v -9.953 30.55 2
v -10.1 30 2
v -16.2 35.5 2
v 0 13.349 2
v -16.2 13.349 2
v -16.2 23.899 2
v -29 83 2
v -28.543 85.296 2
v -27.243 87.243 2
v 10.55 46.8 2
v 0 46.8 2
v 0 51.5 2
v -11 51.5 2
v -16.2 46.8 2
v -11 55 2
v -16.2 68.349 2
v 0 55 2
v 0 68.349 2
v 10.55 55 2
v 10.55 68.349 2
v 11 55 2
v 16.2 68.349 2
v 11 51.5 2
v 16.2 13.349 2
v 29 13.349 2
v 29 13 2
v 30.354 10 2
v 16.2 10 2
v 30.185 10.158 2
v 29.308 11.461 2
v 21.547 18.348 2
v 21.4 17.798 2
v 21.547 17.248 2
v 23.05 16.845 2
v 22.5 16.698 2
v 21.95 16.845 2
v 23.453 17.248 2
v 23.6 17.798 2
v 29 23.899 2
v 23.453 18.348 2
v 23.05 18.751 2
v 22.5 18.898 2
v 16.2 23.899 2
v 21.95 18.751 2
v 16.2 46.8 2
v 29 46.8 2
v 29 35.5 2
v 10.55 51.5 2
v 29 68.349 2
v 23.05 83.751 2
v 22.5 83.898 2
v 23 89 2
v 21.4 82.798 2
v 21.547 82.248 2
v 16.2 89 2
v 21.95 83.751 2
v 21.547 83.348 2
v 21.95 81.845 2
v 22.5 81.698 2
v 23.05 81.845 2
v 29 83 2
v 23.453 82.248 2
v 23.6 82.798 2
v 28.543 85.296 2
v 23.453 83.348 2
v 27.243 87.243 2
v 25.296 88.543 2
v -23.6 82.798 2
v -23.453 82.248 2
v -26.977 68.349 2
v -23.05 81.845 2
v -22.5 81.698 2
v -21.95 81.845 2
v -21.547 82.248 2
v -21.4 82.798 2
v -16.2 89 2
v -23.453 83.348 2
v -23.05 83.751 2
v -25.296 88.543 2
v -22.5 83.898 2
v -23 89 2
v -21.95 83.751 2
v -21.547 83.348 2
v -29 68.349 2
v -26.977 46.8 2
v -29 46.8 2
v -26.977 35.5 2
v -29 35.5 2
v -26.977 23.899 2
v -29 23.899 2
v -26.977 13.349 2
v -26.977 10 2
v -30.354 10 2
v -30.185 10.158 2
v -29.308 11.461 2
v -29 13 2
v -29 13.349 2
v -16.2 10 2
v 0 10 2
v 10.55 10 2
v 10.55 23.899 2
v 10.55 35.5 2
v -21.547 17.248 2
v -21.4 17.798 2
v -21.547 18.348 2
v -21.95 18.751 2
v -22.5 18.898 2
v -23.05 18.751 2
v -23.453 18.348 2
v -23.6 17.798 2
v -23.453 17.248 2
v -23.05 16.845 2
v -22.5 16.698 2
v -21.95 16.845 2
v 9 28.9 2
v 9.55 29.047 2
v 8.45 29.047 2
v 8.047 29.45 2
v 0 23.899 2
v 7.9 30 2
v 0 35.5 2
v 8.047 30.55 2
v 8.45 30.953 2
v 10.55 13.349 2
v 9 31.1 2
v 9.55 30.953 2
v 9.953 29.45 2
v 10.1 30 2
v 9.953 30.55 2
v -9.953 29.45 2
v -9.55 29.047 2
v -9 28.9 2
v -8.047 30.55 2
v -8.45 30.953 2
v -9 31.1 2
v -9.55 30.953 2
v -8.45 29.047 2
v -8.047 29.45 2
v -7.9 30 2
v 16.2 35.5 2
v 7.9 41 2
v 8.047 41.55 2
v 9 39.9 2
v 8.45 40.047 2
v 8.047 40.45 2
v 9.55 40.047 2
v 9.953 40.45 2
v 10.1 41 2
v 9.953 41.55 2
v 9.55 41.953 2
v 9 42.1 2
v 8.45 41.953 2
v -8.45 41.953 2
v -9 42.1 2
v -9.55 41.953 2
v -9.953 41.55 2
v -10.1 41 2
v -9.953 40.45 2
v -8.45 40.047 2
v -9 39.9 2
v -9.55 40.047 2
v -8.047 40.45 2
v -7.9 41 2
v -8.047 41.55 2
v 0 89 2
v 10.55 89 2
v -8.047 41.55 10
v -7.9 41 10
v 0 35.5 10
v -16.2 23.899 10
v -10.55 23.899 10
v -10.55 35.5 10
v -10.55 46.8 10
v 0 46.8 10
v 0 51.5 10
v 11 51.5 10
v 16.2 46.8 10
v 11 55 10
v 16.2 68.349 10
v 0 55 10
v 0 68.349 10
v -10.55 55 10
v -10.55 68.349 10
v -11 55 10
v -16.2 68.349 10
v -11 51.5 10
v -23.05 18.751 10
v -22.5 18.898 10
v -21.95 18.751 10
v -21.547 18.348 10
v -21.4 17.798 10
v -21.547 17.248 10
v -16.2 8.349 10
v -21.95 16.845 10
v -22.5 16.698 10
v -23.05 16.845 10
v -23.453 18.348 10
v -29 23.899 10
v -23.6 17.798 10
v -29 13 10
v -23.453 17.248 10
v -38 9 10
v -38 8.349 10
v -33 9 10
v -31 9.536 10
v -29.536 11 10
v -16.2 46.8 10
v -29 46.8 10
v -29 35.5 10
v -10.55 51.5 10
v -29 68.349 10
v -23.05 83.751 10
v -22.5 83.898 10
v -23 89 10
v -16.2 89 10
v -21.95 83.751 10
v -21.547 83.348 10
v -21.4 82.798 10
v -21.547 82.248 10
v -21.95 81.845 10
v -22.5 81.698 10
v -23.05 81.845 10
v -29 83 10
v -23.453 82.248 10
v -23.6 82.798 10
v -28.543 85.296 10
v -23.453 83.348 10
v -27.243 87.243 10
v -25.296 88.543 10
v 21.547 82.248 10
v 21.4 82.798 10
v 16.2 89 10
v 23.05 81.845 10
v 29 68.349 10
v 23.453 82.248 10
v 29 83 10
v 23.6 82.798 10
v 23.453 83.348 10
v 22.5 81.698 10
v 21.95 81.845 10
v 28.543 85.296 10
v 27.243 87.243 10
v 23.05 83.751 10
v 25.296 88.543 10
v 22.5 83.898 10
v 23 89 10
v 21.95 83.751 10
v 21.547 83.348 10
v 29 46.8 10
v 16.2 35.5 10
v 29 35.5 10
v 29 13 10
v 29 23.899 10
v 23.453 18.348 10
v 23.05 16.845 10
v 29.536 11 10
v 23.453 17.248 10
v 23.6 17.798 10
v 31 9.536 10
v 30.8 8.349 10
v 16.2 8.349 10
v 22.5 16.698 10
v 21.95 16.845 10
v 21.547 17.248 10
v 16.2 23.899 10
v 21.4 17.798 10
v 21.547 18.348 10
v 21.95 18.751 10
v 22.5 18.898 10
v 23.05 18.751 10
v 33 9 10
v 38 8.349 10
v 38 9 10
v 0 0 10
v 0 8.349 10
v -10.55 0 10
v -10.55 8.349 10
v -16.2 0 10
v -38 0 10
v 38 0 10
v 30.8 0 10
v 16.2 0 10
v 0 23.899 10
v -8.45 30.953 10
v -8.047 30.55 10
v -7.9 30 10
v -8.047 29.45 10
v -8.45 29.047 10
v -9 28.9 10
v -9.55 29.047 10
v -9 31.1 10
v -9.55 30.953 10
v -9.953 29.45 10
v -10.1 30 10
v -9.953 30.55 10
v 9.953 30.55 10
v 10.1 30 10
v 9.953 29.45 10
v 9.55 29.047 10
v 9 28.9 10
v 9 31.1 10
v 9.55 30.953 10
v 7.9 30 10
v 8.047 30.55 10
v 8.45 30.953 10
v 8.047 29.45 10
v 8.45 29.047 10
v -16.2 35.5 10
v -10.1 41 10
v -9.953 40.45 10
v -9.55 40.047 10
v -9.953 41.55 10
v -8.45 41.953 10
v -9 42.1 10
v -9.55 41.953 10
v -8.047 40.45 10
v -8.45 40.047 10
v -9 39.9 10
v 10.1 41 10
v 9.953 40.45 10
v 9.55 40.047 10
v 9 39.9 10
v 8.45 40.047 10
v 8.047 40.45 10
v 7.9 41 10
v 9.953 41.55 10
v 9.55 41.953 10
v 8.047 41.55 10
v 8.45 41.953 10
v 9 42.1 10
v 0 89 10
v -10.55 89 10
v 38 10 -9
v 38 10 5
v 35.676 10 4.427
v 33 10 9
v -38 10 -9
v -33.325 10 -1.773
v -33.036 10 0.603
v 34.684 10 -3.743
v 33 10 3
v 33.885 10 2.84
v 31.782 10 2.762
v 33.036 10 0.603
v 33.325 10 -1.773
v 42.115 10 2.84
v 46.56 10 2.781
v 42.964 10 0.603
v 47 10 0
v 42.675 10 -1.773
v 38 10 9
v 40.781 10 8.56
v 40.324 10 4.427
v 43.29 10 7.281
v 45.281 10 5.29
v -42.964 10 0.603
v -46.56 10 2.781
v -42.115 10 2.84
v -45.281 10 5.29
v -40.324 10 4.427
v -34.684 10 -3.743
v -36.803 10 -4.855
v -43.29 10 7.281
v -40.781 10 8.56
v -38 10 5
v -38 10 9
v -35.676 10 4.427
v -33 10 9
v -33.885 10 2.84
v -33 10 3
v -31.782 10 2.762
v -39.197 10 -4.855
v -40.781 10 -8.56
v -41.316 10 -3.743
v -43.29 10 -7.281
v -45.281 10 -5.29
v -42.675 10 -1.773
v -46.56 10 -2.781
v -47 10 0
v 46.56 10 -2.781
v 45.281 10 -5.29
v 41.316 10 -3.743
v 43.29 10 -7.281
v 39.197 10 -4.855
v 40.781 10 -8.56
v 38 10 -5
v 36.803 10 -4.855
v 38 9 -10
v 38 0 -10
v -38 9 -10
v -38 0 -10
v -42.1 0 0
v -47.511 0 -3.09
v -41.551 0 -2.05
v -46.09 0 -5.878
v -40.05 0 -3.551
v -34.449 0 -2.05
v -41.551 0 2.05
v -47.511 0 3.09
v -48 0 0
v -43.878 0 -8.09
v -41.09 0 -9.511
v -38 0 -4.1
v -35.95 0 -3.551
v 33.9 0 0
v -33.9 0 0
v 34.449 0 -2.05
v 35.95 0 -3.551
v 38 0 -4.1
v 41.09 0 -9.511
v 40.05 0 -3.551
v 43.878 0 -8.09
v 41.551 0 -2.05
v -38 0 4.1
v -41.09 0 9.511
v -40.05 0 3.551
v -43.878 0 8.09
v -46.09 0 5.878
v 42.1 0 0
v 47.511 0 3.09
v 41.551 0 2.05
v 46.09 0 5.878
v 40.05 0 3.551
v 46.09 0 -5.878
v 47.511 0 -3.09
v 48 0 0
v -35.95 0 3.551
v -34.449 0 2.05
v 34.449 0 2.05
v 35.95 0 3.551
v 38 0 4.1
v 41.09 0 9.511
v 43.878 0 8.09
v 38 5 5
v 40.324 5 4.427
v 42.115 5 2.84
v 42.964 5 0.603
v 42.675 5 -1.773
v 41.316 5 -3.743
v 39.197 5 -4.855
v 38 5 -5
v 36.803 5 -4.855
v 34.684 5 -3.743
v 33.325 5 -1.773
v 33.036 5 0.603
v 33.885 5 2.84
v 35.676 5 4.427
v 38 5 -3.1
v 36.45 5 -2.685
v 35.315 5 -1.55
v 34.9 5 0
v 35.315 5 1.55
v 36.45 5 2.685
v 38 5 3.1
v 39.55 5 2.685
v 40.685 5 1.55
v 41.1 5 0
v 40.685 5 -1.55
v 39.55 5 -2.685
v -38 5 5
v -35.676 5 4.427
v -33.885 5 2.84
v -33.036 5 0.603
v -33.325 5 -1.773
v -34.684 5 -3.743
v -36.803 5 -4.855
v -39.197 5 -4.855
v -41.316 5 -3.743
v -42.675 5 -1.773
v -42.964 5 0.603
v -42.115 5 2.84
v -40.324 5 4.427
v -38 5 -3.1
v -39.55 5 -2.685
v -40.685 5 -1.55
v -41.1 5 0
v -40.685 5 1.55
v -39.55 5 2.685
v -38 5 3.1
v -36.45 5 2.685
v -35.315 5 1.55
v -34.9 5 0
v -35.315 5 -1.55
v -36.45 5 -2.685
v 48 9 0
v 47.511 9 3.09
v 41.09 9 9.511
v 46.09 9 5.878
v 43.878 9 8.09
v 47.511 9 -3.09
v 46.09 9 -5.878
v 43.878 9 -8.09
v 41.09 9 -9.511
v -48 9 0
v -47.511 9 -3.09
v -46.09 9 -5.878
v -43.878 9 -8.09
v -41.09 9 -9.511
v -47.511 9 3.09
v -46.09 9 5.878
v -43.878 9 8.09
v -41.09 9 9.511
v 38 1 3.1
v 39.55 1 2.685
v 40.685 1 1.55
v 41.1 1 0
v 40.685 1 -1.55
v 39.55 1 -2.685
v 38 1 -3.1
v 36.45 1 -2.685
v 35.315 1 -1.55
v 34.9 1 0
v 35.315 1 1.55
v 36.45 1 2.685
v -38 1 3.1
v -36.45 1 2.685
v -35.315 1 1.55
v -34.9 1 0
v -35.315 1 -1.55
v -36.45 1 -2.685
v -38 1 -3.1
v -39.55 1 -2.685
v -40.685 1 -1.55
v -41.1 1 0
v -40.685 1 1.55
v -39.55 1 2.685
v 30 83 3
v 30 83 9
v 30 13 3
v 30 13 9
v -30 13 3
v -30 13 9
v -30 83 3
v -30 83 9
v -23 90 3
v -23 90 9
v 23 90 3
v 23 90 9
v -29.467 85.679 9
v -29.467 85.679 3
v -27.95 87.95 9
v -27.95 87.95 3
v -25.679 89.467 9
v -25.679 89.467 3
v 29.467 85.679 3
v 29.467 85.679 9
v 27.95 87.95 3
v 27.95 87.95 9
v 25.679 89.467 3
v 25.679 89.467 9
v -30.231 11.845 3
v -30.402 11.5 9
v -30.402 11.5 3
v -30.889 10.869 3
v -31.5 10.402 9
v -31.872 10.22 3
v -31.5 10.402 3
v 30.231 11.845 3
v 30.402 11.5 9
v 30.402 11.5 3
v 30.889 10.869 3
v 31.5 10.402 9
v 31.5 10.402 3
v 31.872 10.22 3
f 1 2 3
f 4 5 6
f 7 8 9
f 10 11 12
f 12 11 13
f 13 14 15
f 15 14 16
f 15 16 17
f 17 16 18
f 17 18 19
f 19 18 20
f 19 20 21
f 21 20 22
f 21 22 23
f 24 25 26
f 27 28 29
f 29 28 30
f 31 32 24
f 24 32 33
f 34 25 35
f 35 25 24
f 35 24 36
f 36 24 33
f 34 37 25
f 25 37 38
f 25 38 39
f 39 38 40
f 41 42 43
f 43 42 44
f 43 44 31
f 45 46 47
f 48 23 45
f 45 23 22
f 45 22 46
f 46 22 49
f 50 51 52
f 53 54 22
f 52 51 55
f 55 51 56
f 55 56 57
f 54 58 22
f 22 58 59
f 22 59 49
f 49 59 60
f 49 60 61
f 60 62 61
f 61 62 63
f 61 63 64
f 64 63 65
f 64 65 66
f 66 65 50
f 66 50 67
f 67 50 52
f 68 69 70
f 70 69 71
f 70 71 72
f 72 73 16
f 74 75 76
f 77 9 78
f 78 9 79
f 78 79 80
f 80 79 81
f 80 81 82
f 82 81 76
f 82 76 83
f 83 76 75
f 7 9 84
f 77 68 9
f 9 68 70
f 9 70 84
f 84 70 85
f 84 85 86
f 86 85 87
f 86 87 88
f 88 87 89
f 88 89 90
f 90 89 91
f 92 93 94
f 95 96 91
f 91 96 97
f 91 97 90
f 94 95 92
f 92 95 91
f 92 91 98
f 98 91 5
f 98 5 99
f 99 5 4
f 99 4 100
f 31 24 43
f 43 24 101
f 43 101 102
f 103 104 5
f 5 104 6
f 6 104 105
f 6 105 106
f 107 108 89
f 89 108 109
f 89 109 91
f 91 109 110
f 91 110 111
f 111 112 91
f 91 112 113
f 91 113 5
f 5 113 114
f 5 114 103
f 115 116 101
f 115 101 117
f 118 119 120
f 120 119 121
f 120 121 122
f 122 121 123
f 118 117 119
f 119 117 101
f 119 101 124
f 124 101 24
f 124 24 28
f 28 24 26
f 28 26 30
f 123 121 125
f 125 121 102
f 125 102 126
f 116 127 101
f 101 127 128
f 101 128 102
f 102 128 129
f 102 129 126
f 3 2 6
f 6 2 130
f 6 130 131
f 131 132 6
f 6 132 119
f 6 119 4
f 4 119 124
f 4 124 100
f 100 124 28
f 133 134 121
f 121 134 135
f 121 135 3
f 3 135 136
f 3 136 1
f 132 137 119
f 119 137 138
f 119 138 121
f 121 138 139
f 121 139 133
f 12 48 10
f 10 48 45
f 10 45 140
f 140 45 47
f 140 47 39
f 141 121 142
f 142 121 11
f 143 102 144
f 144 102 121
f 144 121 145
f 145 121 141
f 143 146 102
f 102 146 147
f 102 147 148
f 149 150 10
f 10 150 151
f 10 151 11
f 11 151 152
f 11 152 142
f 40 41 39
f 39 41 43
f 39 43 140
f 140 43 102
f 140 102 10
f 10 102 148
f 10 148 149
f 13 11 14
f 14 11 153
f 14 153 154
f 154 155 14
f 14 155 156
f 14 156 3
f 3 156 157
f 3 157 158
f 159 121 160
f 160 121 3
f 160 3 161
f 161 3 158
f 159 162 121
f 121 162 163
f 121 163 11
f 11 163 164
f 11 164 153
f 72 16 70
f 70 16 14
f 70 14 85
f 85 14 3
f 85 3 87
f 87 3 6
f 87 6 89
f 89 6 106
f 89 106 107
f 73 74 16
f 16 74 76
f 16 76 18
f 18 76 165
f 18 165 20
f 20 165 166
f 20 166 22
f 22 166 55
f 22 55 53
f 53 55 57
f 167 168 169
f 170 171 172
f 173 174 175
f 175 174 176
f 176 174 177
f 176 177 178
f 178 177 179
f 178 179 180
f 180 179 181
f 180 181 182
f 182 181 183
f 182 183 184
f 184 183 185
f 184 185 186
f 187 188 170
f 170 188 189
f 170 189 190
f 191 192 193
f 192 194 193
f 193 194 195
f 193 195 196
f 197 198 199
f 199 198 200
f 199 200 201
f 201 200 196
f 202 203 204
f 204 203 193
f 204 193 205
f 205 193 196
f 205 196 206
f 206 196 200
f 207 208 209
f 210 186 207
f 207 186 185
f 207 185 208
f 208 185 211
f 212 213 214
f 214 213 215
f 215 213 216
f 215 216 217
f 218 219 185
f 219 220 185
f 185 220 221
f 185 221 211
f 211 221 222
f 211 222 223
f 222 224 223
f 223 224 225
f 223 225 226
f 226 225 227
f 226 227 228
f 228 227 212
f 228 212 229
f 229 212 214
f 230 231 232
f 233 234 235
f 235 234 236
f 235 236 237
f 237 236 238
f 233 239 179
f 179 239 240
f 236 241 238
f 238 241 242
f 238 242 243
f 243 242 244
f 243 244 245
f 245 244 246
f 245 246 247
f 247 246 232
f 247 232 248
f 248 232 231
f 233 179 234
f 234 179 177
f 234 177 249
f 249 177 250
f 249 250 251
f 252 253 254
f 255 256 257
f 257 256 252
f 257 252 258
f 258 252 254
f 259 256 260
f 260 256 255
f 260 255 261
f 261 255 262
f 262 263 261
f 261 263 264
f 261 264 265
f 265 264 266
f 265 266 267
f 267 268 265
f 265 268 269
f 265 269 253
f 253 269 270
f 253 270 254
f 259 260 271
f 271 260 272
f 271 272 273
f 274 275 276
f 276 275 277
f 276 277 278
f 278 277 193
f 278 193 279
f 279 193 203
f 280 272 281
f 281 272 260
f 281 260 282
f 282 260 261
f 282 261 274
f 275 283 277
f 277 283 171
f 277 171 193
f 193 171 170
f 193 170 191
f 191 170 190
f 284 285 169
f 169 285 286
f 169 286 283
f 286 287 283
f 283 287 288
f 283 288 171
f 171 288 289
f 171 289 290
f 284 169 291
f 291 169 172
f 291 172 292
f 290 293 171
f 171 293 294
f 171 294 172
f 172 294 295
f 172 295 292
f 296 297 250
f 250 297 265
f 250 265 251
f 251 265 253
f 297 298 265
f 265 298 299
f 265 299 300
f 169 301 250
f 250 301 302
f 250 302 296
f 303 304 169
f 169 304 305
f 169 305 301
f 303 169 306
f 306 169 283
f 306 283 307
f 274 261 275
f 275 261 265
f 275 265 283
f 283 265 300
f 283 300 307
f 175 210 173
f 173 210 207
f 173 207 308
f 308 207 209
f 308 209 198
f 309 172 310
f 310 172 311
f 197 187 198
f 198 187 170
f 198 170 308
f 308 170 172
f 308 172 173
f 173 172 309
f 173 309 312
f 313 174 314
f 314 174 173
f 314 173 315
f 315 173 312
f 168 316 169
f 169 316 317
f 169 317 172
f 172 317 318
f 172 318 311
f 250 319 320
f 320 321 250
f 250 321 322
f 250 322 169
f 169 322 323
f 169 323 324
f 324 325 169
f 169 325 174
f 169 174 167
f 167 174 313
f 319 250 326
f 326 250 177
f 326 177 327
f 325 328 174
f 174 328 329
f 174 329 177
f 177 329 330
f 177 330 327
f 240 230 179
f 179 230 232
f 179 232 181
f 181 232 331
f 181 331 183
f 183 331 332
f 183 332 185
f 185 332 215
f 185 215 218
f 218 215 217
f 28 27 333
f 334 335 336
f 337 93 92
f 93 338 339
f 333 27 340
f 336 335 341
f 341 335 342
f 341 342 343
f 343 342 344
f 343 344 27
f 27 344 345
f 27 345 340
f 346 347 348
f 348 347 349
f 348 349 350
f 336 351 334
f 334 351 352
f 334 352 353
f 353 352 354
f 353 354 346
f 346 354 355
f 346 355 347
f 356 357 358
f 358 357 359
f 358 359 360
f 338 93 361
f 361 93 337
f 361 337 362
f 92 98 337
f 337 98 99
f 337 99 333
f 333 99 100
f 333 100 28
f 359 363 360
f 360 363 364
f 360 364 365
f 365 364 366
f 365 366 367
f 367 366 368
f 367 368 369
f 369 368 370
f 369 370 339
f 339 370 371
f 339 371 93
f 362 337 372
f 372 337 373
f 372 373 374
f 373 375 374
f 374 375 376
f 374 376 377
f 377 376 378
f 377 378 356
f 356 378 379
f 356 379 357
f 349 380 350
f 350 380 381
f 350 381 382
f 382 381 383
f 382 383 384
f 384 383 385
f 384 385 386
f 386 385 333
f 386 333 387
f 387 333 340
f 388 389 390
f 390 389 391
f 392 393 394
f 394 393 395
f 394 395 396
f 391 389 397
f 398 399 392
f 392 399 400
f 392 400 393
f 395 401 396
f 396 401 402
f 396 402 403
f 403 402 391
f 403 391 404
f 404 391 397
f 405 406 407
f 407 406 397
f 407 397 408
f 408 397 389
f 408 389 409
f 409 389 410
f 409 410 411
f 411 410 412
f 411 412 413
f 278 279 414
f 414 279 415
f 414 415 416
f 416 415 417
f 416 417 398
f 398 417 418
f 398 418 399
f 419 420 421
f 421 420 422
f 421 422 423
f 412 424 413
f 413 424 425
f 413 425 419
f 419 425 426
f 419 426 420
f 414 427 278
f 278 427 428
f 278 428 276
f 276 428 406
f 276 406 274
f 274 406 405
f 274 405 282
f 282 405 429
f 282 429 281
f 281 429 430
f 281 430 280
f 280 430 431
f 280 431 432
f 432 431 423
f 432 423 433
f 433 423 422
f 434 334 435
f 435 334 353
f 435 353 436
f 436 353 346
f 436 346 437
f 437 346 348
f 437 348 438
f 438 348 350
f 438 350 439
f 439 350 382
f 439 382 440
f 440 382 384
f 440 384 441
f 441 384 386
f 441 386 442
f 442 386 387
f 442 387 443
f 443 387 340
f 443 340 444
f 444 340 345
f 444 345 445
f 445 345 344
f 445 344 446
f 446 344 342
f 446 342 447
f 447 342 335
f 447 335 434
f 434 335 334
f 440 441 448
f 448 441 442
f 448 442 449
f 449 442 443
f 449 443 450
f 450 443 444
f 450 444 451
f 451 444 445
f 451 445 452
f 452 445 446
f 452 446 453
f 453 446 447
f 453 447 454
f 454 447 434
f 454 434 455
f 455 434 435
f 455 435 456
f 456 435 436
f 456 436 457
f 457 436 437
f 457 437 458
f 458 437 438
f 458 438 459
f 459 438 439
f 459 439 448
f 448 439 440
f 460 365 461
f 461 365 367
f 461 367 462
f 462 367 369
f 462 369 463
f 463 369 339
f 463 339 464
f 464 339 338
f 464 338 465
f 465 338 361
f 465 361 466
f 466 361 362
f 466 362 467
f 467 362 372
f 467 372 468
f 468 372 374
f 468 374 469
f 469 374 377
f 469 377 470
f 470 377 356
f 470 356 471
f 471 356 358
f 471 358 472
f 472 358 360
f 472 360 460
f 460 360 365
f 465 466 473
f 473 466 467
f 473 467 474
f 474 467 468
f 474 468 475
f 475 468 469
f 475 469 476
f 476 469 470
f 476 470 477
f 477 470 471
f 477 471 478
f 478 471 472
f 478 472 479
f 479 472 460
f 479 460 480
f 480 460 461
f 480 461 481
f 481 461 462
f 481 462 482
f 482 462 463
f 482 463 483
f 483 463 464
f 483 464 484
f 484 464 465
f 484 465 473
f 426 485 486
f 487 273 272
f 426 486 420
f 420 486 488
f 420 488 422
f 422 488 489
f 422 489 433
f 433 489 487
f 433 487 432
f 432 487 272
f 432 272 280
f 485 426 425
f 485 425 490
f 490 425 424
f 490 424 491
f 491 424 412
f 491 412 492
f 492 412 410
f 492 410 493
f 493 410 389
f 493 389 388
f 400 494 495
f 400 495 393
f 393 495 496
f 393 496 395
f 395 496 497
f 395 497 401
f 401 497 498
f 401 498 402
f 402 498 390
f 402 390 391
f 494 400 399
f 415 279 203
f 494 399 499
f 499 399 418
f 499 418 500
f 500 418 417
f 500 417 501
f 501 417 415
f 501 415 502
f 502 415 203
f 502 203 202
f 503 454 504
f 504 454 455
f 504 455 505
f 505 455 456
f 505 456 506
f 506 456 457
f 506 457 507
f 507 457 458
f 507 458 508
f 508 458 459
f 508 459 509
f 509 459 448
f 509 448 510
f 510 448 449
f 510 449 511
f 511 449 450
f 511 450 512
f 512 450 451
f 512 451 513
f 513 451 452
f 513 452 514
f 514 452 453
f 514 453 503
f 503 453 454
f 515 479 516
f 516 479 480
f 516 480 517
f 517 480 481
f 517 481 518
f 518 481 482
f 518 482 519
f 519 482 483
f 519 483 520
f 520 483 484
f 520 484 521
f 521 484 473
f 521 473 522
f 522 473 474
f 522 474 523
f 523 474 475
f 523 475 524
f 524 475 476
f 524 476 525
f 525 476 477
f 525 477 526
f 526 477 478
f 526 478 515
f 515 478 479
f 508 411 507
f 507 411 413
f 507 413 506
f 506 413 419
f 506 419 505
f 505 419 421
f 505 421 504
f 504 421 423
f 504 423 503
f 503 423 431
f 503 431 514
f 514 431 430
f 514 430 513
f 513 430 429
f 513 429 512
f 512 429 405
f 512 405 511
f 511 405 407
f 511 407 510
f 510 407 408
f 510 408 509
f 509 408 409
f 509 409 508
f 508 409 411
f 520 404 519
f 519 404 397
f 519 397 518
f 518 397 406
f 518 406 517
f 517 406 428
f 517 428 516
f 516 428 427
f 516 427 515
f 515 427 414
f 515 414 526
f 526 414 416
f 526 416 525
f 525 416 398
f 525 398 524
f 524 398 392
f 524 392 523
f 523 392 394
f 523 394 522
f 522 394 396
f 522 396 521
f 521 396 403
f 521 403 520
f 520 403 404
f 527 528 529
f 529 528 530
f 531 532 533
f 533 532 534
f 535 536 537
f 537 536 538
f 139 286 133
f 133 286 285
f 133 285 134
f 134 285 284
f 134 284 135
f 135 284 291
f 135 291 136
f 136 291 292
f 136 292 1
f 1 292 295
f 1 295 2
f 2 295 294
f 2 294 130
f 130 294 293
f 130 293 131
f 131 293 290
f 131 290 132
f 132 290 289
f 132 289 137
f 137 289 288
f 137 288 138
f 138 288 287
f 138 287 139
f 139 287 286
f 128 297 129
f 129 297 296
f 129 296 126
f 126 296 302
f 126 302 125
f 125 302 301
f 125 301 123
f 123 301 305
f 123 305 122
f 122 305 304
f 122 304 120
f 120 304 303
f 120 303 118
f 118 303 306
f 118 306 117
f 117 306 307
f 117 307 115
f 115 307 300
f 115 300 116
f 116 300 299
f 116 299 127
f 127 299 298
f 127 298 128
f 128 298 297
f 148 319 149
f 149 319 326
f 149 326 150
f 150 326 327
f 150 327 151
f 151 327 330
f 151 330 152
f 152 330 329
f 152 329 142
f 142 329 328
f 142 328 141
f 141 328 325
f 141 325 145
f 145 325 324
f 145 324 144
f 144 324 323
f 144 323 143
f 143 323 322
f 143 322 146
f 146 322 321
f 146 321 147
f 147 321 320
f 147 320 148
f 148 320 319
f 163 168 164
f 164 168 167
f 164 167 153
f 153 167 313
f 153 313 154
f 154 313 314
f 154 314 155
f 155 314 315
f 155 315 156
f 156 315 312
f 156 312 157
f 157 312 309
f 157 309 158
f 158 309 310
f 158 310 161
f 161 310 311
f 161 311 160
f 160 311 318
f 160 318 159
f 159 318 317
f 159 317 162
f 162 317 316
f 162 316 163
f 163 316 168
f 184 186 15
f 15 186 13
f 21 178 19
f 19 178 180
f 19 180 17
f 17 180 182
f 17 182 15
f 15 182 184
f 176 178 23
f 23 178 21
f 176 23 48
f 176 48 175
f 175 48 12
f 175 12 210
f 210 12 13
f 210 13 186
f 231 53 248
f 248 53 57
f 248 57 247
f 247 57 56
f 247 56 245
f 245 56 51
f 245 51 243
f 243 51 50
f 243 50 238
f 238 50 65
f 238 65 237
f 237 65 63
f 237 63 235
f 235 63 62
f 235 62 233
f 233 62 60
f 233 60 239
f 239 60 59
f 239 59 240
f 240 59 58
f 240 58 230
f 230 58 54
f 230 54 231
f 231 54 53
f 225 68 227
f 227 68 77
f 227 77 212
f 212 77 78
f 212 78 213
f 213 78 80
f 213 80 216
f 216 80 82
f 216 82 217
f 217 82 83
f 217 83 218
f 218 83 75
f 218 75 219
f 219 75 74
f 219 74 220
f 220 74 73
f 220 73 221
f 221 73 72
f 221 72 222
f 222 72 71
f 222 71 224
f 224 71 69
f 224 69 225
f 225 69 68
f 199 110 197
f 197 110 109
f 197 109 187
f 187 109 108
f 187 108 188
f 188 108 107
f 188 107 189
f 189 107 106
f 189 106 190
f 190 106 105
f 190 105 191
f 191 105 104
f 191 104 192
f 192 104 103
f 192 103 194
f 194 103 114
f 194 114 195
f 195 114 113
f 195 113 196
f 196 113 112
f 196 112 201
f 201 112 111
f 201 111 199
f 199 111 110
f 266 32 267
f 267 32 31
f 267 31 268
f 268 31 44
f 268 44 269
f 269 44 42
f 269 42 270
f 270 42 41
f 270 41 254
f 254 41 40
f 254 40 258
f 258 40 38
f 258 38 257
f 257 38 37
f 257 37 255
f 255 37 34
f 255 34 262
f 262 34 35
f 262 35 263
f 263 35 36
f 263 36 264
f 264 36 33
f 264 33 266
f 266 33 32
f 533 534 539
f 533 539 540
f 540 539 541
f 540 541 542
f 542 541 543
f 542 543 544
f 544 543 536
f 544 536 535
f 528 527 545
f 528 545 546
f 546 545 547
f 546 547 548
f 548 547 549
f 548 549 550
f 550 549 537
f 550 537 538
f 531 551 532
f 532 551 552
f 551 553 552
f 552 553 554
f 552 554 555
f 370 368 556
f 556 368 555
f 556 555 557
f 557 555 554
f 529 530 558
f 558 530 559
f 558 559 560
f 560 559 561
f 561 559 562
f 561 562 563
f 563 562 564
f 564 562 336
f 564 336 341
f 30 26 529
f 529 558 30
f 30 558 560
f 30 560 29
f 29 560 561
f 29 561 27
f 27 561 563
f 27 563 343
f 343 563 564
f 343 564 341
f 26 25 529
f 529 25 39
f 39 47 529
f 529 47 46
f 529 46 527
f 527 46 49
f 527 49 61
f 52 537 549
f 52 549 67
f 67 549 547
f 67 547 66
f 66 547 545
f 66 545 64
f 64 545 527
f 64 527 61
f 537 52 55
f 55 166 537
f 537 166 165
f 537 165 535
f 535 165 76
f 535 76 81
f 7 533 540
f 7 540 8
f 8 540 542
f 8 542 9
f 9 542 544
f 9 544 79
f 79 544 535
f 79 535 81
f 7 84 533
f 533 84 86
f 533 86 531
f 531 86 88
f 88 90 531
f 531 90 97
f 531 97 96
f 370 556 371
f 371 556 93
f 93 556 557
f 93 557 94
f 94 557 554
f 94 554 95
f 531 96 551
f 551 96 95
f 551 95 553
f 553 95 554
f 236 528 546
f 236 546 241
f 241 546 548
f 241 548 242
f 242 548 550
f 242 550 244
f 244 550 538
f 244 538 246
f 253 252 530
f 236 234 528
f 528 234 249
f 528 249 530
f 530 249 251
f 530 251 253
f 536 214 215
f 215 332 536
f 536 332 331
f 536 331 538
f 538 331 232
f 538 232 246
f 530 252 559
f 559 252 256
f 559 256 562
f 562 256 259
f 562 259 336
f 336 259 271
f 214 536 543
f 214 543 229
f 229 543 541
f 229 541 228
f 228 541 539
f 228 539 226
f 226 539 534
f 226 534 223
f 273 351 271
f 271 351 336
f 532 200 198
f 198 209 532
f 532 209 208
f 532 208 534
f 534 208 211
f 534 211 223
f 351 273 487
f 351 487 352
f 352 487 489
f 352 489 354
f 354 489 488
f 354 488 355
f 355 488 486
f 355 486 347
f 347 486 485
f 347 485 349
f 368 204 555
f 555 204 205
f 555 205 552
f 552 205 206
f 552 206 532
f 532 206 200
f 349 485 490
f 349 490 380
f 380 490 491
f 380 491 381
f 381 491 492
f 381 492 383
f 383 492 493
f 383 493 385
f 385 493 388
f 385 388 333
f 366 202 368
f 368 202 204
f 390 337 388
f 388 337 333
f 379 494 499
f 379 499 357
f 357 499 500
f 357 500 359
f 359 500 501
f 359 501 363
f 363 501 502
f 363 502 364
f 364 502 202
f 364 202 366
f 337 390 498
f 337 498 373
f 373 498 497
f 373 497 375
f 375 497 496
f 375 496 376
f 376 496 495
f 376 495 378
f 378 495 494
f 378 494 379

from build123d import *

# Parameters (mm, degrees)
SKETCH_1_W          = 96
SKETCH_1_H          = 20
EXTRUDE_1_DEPTH     = 10
SKETCH_2_R          = 5
CUT_EXTRUDE_1_DEPTH = 5
FILLET_1_R          = 10
SKETCH_3_R          = 3.1
CUT_EXTRUDE_2_DEPTH = 5
CHAMFER_1_SIZE      = 1
SKETCH_4_W          = 60
SKETCH_4_H          = 20
EXTRUDE_2_DEPTH     = 80
CUT_EXTRUDE_4_REACH = 105.942
SKETCH_6_R          = 1.1
CUT_EXTRUDE_5_DEPTH = 11
SKETCH_8_W          = 60
SKETCH_8_H          = 102
CUT_EXTRUDE_6_DEPTH = 12
SKETCH_9_R          = 1.1
CUT_EXTRUDE_7_DEPTH = 10
FILLET_8_R          = 7
SKETCH_10_W         = 12
SKETCH_10_H         = 10
EXTRUDE_3_DEPTH     = 60
FILLET_11_R         = 3
CHAMFER_4_SIZE      = 1


with BuildPart() as part:
    # 草图1 → 凸台-拉伸1 (new body)
    with BuildSketch(Plane(origin=(0, 0, 0), x_dir=(1, 0, 0), z_dir=(0, 1, 0))):
        Rectangle(SKETCH_1_W, SKETCH_1_H)
    extrude(amount=EXTRUDE_1_DEPTH)

    # 草图2 → 切除-拉伸1 (cut)
    with BuildSketch(Plane(origin=(0, 10, 0), x_dir=(1, 0, 0), z_dir=(0, 1, 0))):
        with Locations(Location((-38, 0, 0), (0, 0, 270))):
            Circle(SKETCH_2_R)
        with Locations(Location((38, 0, 0), (0, 0, 90))):
            Circle(SKETCH_2_R)
    extrude(amount=-CUT_EXTRUDE_1_DEPTH, mode=Mode.SUBTRACT)

    # 圆角1
    fillet_1_edges = [part.edges().sort_by_distance(p)[0] for p in [
        (48, 5, -10),
        (48, 5, 10),
        (-48, 5, 10),
        (-48, 5, -10),
    ]]
    fillet(fillet_1_edges, radius=FILLET_1_R - 0.0001)  # a hair under: the kernel refuses the full size

    # 草图3 → 切除-拉伸2 (cut)
    with BuildSketch(Plane(origin=(0, 5, 0), x_dir=(1, 0, 0), z_dir=(0, 1, 0))):
        with Locations(Location((-38, 0, 0), (0, 0, 270))):
            Circle(SKETCH_3_R)
        with Locations(Location((38, 0, 0), (0, 0, 270))):
            Circle(SKETCH_3_R)
    extrude(amount=-CUT_EXTRUDE_2_DEPTH, mode=Mode.SUBTRACT)

    # 倒角1
    chamfer_1_edges = [part.edges().sort_by_distance(p)[0] for p in [
        (-38, 0, -3.1),
        (38, 0, -3.1),
    ]]
    chamfer(chamfer_1_edges, length=CHAMFER_1_SIZE)

    # 草图4 → 凸台-拉伸2 (add)
    with BuildSketch(Plane(origin=(0, 10, 0), x_dir=(1, 0, 0), z_dir=(0, 1, 0))):
        Rectangle(SKETCH_4_W, SKETCH_4_H)
    extrude(amount=EXTRUDE_2_DEPTH)

    # 草图6 → 切除-拉伸4 (cut, up to next)
    with BuildSketch(Plane.XY.offset(10), mode=Mode.PRIVATE) as cut_extrude_4_sk1:
        with Locations((-9, 41)):
            Circle(SKETCH_6_R)
    cut_extrude_4_tool1 = extrude(cut_extrude_4_sk1.sketch, amount=-CUT_EXTRUDE_4_REACH, mode=Mode.PRIVATE) & part.part
    # 草图6 → 切除-拉伸4 (cut, up to next)
    with BuildSketch(Plane.XY.offset(10), mode=Mode.PRIVATE) as cut_extrude_4_sk2:
        with Locations((9, 41)):
            Circle(SKETCH_6_R)
    cut_extrude_4_tool2 = extrude(cut_extrude_4_sk2.sketch, amount=-CUT_EXTRUDE_4_REACH, mode=Mode.PRIVATE) & part.part
    # 草图6 → 切除-拉伸4 (cut, up to next)
    with BuildSketch(Plane.XY.offset(10), mode=Mode.PRIVATE) as cut_extrude_4_sk3:
        with Locations((9, 30)):
            Circle(SKETCH_6_R)
    cut_extrude_4_tool3 = extrude(cut_extrude_4_sk3.sketch, amount=-CUT_EXTRUDE_4_REACH, mode=Mode.PRIVATE) & part.part
    # 草图6 → 切除-拉伸4 (cut, up to next)
    with BuildSketch(Plane.XY.offset(10), mode=Mode.PRIVATE) as cut_extrude_4_sk4:
        with Locations((-9, 30)):
            Circle(SKETCH_6_R)
    cut_extrude_4_tool4 = extrude(cut_extrude_4_sk4.sketch, amount=-CUT_EXTRUDE_4_REACH, mode=Mode.PRIVATE) & part.part
    add(cut_extrude_4_tool1.solids().sort_by_distance((-9, 41, 10))[0], mode=Mode.SUBTRACT)
    add(cut_extrude_4_tool2.solids().sort_by_distance((9, 41, 10))[0], mode=Mode.SUBTRACT)
    add(cut_extrude_4_tool3.solids().sort_by_distance((9, 30, 10))[0], mode=Mode.SUBTRACT)
    add(cut_extrude_4_tool4.solids().sort_by_distance((-9, 30, 10))[0], mode=Mode.SUBTRACT)

    # 草图6<8> → 切除-拉伸5 (cut)
    with BuildSketch(Plane.XY.offset(10)):
        Polygon((0, 55), (11, 55), (11, 51.5), (-11, 51.5), (-11, 55), align=None)
    extrude(amount=-CUT_EXTRUDE_5_DEPTH, mode=Mode.SUBTRACT)

    # 草图8 → 切除-拉伸6 (cut)
    with BuildSketch(Plane(origin=(0, 0, -10), x_dir=(-1, 0, 0), z_dir=(0, 0, -1))):
        with Locations((0, 39)):
            Rectangle(SKETCH_8_W, SKETCH_8_H)
    extrude(amount=-CUT_EXTRUDE_6_DEPTH, mode=Mode.SUBTRACT)

    # 草图9 → 切除-拉伸7 (cut)
    with BuildSketch(Plane(origin=(0, 0, 2), x_dir=(-1, 0, 0), z_dir=(0, 0, -1))):
        with Locations((-22.5, 82.797945994)):
            Circle(SKETCH_9_R)
        with Locations((22.5, 82.797945994)):
            Circle(SKETCH_9_R)
        with Locations((22.5, 17.797945994)):
            Circle(SKETCH_9_R)
        with Locations((-22.5, 17.797945994)):
            Circle(SKETCH_9_R)
    extrude(amount=-CUT_EXTRUDE_7_DEPTH, mode=Mode.SUBTRACT)

    # 圆角8
    fillet_8_edges = [part.edges().sort_by_distance(p)[0] for p in [
        (-30, 90, 6),
        (30, 90, 6),
    ]]
    fillet(fillet_8_edges, radius=FILLET_8_R)

    # 草图10 → 凸台-拉伸3 (add)
    with BuildSketch(Plane.ZY.offset(-30)):
        with Locations((-4, 5)):
            Rectangle(SKETCH_10_W, SKETCH_10_H)
    extrude(amount=EXTRUDE_3_DEPTH)

    # 圆角11
    fillet_11_edges = [part.edges().sort_by_distance(p)[0] for p in [
        (-30, 10, 6),
        (30, 10, 6),
    ]]
    fillet(fillet_11_edges, radius=FILLET_11_R)

    # 倒角4
    chamfer_4_edges = [part.edges().sort_by_distance(p)[0] for p in [
        (0, 90, 2),
        (0, 90, 10),
        (30, 48, 10),
        (-30, 48, 10),
        (27.949747468, 87.949747468, 10),
        (-27.949747468, 87.949747468, 10),
        (30, 48, 2),
        (27.949747468, 87.949747468, 2),
        (-27.949747468, 87.949747468, 2),
        (-30, 48, 2),
        (35.50005, 10, 10),
        (-30.878679656, 10.878679656, 10),
        (-30.878679656, 10.878679656, 2),
        (30.878679656, 10.878679656, 2),
        (30.878679656, 10.878679656, 10),
        (0, 10, -10),
        (-35.50005, 10, 10),
        (-45.071097101, 10, -7.071097101),
        (-45.071097101, 10, 7.071097101),
        (45.071097101, 10, 7.071097101),
        (45.071097101, 10, -7.071097101),
    ]]
    chamfer(chamfer_4_edges, length=CHAMFER_4_SIZE)


solid = part.part
